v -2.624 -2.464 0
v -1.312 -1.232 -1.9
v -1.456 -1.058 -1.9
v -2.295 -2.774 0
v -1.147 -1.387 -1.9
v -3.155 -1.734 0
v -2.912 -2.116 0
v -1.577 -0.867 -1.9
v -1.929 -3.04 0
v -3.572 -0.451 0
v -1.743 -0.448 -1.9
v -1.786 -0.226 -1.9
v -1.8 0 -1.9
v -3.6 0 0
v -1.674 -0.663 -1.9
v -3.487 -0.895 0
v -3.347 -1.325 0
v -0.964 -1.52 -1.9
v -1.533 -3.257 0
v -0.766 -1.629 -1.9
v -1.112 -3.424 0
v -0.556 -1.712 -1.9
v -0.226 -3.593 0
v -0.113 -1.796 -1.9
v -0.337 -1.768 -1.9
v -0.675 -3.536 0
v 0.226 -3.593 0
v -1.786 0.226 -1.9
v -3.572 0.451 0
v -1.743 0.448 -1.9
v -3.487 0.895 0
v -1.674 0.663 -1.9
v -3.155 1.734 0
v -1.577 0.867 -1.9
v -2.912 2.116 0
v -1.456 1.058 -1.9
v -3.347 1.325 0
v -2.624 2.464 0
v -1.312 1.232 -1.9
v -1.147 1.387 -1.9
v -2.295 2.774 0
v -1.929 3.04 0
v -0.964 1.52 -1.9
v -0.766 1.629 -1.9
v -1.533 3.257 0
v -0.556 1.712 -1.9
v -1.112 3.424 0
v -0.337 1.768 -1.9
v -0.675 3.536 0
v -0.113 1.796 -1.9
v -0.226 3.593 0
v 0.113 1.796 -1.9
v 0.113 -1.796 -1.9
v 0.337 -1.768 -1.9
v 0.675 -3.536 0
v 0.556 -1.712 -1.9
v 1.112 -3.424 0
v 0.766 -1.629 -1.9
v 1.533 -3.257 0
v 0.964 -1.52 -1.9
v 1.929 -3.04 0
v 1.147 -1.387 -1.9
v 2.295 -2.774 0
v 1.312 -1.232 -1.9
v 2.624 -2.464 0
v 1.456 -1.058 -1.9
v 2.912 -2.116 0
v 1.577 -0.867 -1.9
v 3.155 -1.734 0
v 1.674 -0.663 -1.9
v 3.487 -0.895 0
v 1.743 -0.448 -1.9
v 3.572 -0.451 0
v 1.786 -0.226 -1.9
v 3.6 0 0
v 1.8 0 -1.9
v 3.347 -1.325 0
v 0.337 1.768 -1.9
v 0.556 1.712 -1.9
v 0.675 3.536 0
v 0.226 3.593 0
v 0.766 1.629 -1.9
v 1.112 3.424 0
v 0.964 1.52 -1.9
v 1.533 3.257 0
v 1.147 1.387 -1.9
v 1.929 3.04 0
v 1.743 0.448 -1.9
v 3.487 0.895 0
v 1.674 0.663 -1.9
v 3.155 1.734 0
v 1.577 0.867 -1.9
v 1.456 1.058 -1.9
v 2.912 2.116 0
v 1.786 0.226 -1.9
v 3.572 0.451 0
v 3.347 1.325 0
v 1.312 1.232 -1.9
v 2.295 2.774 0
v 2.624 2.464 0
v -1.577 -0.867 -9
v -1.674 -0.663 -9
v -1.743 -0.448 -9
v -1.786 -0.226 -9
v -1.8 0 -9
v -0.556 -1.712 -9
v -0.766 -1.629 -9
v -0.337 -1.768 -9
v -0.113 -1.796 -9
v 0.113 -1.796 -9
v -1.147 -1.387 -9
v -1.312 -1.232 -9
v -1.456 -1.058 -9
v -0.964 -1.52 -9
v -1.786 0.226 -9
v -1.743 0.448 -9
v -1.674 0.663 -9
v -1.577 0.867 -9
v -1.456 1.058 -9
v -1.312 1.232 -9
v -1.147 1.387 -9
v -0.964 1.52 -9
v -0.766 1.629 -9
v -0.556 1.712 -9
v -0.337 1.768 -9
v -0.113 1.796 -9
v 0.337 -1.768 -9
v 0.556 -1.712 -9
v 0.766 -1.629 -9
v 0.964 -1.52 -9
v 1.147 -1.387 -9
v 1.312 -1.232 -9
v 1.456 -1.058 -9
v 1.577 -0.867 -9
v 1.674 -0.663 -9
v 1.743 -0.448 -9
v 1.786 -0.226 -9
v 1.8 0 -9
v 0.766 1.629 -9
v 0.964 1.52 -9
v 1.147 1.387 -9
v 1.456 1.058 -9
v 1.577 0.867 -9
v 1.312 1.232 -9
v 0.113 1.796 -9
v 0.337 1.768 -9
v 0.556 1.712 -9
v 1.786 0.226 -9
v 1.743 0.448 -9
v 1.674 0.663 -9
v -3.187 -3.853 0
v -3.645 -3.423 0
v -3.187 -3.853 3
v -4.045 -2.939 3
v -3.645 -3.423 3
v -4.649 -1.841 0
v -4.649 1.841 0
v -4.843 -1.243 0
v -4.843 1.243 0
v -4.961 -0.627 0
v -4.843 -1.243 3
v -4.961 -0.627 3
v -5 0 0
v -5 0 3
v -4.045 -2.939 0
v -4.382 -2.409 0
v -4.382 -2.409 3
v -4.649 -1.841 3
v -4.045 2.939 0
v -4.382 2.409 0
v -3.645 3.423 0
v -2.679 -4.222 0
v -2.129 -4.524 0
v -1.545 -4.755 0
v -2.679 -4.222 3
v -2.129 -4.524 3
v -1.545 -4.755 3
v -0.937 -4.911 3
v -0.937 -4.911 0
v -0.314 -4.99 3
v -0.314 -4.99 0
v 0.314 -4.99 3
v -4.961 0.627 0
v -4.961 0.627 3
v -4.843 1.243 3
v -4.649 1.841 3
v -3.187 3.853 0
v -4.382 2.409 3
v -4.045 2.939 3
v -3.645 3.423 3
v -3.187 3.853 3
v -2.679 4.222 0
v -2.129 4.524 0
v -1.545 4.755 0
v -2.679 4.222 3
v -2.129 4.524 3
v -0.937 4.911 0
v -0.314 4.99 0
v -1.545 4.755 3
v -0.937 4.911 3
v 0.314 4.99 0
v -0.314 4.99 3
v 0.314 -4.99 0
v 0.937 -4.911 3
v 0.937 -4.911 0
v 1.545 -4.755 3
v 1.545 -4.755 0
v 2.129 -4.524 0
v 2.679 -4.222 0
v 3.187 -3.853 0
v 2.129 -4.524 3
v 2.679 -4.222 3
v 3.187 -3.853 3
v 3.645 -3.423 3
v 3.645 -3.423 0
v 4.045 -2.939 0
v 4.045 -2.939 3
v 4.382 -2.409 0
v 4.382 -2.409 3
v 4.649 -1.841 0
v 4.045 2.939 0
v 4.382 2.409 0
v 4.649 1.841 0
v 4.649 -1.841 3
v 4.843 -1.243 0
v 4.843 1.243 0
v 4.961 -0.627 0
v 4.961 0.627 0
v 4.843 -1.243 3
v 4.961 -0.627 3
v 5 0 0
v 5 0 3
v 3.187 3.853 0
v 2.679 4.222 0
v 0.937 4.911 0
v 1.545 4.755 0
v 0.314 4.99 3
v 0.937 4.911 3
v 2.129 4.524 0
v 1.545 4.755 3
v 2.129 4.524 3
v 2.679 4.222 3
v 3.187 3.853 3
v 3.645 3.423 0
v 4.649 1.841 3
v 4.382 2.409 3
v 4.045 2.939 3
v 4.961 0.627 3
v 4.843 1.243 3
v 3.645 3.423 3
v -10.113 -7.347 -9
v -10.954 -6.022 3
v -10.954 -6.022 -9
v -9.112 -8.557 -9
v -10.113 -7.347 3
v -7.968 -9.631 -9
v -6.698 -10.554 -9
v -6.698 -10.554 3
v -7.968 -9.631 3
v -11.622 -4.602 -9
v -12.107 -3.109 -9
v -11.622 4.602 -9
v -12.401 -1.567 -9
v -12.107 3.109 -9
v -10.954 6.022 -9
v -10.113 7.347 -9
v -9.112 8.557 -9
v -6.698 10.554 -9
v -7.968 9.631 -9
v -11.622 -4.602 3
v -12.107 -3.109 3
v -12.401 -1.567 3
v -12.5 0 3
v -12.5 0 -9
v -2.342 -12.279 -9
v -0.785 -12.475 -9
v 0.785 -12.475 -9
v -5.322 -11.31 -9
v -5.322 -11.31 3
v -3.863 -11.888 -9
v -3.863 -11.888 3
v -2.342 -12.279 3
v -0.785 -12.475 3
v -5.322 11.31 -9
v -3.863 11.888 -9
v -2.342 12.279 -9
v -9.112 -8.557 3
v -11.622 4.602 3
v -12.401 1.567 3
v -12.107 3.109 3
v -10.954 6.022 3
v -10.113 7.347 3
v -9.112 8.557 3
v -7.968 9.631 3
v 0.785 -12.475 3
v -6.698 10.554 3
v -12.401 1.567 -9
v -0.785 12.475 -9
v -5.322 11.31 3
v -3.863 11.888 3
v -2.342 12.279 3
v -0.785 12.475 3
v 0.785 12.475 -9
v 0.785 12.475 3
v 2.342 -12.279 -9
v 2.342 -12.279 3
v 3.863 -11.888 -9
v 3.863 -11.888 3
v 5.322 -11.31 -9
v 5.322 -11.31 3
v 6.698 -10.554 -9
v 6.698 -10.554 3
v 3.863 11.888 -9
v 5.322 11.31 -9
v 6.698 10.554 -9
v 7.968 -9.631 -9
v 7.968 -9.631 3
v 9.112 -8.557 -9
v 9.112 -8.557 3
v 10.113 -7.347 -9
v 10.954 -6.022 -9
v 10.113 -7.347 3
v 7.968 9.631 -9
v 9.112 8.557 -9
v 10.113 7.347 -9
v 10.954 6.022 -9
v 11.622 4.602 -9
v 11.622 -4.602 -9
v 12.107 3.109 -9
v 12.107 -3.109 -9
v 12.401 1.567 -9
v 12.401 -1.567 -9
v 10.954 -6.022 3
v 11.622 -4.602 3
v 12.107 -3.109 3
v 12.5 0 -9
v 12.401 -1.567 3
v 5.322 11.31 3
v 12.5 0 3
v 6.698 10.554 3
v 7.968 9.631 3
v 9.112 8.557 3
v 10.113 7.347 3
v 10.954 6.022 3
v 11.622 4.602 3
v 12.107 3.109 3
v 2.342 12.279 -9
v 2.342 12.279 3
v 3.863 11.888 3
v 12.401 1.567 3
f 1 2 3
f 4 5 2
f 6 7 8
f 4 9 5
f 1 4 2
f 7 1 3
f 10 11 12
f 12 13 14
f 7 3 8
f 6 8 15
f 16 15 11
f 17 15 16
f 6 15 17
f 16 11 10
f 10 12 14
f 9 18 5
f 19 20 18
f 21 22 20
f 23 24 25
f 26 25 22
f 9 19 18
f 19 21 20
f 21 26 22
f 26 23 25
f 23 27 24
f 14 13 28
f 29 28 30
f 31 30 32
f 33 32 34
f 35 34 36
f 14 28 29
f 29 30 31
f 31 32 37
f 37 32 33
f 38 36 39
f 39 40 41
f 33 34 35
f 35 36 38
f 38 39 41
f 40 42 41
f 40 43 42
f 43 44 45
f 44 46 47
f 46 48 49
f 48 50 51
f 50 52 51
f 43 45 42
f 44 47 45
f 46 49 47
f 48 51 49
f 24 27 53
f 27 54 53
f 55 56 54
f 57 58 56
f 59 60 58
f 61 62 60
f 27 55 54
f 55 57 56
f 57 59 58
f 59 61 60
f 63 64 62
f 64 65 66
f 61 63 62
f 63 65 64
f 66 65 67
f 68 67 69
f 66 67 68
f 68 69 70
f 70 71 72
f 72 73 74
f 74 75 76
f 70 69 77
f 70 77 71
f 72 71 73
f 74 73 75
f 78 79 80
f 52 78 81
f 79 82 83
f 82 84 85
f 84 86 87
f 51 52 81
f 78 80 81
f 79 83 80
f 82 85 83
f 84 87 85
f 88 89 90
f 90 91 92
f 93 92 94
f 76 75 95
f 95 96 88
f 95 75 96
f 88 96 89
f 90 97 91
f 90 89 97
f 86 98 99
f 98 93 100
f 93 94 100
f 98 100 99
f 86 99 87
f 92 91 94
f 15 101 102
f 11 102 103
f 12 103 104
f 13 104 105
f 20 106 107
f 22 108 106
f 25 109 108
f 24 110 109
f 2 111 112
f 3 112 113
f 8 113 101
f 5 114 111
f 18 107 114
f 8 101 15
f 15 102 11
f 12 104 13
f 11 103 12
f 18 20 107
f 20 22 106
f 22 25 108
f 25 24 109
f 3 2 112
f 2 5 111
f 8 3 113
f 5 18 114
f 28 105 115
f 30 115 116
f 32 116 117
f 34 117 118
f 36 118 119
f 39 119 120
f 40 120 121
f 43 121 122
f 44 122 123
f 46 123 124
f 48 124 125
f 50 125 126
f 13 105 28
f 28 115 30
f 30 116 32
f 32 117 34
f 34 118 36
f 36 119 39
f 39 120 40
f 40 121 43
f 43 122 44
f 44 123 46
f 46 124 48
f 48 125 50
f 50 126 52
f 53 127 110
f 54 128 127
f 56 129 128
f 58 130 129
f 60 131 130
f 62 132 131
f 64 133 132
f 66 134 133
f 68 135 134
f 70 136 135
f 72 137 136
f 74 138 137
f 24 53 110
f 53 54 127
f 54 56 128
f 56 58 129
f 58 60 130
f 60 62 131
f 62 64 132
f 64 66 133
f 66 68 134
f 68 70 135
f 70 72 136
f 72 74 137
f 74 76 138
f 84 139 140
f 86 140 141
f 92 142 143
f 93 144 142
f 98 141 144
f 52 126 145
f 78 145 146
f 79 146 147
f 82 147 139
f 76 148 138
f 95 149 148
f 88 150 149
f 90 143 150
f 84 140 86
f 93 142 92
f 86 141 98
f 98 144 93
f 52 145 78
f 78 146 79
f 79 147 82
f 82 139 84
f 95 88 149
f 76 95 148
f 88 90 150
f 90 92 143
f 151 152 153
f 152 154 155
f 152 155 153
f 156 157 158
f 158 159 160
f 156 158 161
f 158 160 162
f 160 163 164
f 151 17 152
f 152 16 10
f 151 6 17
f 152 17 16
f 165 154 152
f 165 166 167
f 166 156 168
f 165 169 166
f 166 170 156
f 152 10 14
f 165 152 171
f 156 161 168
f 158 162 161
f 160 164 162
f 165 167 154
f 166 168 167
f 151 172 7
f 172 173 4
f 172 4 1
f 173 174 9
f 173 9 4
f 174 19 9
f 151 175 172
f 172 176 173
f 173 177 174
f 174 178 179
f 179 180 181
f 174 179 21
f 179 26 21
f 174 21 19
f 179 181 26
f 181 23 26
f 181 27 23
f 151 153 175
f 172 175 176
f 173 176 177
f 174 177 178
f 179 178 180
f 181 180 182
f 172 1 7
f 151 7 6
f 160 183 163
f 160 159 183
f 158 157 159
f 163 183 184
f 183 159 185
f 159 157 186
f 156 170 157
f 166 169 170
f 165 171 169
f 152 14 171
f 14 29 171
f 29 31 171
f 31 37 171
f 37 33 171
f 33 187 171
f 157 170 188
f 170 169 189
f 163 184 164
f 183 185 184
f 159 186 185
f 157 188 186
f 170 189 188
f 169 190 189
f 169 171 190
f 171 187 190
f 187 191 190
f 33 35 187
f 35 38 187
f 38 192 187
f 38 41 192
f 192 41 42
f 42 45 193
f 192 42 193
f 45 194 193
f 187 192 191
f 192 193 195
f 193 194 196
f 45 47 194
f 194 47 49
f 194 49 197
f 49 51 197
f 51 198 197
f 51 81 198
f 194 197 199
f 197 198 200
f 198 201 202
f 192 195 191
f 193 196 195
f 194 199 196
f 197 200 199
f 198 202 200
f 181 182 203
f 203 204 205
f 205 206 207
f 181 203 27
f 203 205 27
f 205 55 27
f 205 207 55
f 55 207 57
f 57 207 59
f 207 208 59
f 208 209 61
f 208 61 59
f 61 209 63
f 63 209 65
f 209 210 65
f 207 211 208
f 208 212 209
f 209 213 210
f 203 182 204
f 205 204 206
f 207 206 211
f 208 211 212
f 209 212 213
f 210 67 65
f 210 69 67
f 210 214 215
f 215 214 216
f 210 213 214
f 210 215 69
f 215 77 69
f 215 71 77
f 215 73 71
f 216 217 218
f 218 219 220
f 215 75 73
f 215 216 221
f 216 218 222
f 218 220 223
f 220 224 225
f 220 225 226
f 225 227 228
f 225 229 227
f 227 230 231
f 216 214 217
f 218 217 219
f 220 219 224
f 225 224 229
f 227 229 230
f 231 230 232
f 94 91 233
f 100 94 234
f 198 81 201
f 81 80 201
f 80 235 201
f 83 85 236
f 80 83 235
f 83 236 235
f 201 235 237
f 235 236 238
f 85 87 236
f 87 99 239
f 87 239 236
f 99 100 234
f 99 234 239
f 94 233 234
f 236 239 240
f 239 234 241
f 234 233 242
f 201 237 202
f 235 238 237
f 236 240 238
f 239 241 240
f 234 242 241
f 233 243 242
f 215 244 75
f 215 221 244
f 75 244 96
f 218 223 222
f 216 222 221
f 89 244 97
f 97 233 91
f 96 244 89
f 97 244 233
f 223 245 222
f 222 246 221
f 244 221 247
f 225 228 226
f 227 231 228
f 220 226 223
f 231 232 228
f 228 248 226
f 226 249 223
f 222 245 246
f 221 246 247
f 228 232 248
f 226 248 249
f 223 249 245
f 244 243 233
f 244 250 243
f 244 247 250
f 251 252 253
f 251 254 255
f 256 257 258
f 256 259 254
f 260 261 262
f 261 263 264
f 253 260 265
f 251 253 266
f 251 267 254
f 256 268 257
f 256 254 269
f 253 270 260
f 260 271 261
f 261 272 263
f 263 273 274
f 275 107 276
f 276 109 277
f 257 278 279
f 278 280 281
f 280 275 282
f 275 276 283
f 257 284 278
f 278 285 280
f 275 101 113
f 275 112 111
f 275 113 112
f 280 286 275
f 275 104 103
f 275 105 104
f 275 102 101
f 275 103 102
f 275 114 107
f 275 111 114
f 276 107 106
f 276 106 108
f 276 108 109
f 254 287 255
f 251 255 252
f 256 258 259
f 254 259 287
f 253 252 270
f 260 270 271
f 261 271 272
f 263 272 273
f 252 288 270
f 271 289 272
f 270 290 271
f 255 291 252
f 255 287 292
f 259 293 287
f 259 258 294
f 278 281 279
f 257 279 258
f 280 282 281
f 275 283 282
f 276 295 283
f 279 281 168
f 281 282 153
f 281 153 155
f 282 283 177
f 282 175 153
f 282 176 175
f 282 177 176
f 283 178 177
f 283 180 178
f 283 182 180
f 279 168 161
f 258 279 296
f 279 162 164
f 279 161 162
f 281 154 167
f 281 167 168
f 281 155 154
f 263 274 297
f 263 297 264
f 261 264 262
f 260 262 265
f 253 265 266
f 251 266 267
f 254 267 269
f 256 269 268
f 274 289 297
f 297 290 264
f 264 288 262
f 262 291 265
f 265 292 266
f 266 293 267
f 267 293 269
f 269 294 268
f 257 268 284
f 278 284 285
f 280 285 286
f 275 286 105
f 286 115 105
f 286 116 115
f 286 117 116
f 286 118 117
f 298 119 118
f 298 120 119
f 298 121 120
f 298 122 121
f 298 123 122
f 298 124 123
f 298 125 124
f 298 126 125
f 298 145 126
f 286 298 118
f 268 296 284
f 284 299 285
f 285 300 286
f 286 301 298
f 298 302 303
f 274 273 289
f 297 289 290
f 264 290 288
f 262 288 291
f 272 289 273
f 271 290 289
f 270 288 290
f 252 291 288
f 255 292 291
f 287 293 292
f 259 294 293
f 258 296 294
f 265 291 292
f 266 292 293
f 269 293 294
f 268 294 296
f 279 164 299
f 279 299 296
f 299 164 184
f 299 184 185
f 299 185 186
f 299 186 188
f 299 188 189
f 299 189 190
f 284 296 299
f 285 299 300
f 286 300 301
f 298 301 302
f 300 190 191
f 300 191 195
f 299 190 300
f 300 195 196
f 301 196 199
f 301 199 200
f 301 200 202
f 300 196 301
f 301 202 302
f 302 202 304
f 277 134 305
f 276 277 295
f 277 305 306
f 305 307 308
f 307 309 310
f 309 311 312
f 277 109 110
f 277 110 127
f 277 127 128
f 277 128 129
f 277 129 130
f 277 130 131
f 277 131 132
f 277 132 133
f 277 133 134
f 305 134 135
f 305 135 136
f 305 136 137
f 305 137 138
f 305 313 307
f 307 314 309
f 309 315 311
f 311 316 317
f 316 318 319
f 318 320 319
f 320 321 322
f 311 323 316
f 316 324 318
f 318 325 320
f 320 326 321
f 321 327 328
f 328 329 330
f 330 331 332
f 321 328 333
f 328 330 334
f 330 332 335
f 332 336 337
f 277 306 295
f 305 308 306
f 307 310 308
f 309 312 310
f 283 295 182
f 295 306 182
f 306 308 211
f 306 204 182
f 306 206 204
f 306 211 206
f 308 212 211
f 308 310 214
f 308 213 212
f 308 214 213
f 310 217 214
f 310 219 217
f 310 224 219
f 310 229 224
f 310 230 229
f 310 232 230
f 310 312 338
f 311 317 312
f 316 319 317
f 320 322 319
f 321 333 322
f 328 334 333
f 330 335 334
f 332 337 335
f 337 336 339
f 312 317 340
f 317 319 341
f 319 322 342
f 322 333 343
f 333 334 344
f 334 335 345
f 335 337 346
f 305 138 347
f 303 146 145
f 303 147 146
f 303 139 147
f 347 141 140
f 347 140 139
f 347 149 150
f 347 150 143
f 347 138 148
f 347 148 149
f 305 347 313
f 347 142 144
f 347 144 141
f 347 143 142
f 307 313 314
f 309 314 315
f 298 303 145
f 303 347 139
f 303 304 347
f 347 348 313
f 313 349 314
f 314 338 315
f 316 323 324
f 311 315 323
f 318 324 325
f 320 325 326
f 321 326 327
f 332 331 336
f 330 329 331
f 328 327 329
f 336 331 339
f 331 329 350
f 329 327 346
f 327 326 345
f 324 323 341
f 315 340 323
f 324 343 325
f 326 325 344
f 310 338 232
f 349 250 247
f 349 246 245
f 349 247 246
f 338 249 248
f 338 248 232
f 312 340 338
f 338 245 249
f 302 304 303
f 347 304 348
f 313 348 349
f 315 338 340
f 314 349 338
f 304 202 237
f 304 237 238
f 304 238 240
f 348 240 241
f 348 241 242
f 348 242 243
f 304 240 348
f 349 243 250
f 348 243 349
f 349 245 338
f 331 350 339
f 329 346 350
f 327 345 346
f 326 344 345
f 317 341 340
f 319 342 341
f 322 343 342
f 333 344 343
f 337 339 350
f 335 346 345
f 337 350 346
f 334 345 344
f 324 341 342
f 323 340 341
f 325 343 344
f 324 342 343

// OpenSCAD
$fn = 50;

difference() {
	union() {
		translate(v = [0, 0, -9.0]) {
			cylinder(h = 12, r = 12.5);
		}
	}
	union() {
		translate(v = [0, 0, 0]) {
			rotate(a = [0, 0, 0]) {
				difference() {
					union() {
						translate(v = [0, 0, -12.0]) {
							cylinder(h = 12, r = 1.5);
						}
						translate(v = [0, 0, -1.9]) {
							cylinder(h = 1.9, r1 = 1.8, r2 = 3.6);
						}
						translate(v = [0, 0, -12.0]) {
							cylinder(h = 12, r = 1.8);
						}
						translate(v = [0, 0, -12.0]) {
							cylinder(h = 12, r = 1.5);
						}
					}
					union();
				}
			}
		}
		#cylinder(h = 3, r = 5.0);
	}
}
